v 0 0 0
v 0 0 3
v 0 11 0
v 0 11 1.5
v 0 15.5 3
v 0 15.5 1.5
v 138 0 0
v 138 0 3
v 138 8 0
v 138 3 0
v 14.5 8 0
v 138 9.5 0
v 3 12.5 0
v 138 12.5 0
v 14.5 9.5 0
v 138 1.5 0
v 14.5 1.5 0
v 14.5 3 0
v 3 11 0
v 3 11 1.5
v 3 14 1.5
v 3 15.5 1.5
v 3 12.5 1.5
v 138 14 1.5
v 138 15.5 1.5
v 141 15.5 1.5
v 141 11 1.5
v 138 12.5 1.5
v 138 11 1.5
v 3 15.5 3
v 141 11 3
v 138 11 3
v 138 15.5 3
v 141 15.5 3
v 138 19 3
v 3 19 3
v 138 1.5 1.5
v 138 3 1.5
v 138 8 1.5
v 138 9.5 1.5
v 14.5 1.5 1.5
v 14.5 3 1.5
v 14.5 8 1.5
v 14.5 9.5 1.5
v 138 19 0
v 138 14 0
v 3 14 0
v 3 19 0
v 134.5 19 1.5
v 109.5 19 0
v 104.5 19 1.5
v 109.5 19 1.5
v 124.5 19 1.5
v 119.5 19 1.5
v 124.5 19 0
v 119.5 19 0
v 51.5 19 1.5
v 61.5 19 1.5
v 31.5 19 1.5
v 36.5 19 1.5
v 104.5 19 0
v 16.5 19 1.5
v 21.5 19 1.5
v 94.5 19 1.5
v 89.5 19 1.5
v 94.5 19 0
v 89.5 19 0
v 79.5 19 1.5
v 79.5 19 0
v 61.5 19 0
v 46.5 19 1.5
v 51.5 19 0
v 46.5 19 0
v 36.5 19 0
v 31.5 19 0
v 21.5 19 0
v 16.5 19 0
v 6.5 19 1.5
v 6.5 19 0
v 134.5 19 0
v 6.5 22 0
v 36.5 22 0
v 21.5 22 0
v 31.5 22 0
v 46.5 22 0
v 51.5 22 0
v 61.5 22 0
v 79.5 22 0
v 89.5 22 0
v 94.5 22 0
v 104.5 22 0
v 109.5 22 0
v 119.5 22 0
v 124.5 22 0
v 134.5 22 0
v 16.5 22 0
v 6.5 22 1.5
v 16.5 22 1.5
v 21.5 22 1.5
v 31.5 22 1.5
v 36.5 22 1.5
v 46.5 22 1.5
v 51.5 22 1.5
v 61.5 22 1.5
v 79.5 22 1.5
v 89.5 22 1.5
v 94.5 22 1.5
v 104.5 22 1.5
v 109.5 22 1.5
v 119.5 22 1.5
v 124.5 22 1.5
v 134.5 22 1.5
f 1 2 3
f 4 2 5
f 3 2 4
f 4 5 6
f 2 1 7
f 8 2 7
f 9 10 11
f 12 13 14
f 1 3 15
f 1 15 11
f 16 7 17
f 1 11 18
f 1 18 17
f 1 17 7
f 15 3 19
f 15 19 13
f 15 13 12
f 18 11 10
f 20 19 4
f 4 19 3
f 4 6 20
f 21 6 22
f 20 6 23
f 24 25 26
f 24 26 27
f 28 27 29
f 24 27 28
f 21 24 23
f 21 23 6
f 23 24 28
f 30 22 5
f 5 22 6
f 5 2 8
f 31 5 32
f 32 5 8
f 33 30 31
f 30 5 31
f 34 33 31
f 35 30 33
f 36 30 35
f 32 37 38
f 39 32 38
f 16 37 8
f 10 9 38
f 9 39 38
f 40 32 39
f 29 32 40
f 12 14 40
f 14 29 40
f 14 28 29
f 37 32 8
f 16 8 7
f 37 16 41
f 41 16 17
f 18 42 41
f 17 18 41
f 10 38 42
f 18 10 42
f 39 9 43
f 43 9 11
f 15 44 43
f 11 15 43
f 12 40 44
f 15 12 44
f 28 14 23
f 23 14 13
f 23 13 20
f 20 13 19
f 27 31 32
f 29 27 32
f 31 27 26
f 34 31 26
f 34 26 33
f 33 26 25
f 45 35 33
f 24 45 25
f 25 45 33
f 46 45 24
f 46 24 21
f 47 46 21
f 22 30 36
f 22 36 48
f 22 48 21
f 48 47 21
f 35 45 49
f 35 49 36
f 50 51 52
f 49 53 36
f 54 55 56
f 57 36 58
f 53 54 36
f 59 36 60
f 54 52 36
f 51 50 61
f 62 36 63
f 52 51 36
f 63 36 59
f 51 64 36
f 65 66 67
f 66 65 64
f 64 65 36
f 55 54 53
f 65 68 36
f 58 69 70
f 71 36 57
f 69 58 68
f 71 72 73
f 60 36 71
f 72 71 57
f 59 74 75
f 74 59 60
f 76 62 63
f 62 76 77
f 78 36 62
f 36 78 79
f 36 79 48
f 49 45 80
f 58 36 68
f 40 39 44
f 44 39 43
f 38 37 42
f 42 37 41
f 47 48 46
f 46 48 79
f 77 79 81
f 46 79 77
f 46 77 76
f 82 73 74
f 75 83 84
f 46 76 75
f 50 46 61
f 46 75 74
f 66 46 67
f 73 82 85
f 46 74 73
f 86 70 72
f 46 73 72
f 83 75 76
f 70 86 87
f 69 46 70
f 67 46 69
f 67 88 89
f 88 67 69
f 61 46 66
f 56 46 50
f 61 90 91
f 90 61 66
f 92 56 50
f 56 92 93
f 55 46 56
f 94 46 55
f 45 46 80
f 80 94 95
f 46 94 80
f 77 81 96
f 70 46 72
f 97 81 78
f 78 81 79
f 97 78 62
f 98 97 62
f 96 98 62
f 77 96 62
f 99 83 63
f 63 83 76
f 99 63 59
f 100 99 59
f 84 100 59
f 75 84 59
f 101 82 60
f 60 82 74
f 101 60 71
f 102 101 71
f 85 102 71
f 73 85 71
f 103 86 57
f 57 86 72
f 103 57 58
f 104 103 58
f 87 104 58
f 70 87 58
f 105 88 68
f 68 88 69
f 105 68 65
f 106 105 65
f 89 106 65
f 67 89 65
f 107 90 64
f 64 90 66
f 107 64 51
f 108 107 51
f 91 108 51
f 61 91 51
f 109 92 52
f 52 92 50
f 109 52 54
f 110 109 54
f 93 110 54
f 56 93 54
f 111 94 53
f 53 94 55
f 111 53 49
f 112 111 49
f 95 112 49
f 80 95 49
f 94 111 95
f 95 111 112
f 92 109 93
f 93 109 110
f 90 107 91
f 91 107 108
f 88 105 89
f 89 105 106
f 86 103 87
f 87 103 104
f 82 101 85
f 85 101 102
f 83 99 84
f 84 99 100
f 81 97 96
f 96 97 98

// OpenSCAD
board = 138;
edge = 1.5;

depth = 2 * edge;
width = board + 2 * edge;

groove = 1.5;
faceSpace = 5;
mountSpace = 3;
pcbSpace = 5;

notchSpacing = 5;
notchWidth = 10;
notchHeight = 3;

height =
	edge +
	groove +
	faceSpace +
	groove +
	mountSpace +
	groove +
	pcbSpace +
	notchHeight;

faceTop = edge;
mountTop = faceTop + groove + faceSpace;
pcbTop = mountTop + groove + mountSpace;
baseTop = pcbTop + groove + pcbSpace;

notchCount = 8;
notchGap = board - notchCount * (notchSpacing + notchWidth);
notch1Left = edge + notchSpacing;
notch2Left = notch1Left + notchSpacing + notchWidth;
notch3Left = notch2Left + notchSpacing + notchWidth;
notch4Left = notch3Left + notchSpacing + notchWidth;
notch5Left = notch4Left + notchGap + notchWidth;
notch6Left = notch5Left + notchSpacing + notchWidth;
notch7Left = notch6Left + notchSpacing + notchWidth;
notch8Left = notch7Left + notchSpacing + notchWidth;

module hole(x, y, z, cx, cy, cz)
{
	translate([x, y, z]) cube([cx, cy, cz]);
}

module grooveHole(x, y)
{
	hole(edge + x, y, 0, board - x, groove, edge);
}

module notchHole(x, cx)
{
	hole(x, baseTop, 0, cx, notchHeight, edge);
}

module sideNotch(x)
{
	hole(x, 0, 0, 2 * edge, height, edge);
	hole(x, 0, edge, 2 * edge, pcbTop - edge, edge);
	hole(x, pcbTop + 2 * edge, edge, 2 * edge, 2 * edge + groove, edge);
}

difference()
{
	cube([width, height, depth]);

	grooveHole(13, faceTop);
	grooveHole(13, mountTop);
	grooveHole(0, pcbTop);

	hole(0, baseTop, edge, width, notchHeight, edge);
	notchHole(0, notch1Left);
	notchHole(notch1Left + notchWidth, notchSpacing);
	notchHole(notch2Left + notchWidth, notchSpacing);
	notchHole(notch3Left + notchWidth, notchSpacing);
	notchHole(notch4Left + notchWidth, notchGap);
	notchHole(notch5Left + notchWidth, notchSpacing);
	notchHole(notch6Left + notchWidth, notchSpacing);
	notchHole(notch7Left + notchWidth, notchSpacing);
	notchHole(notch8Left + notchWidth, notchSpacing + edge);

	//sideNotch(0);

	hole(0, pcbTop - edge, 0, 2 * edge, height, edge);
//	hole(0, 0, edge, 2 * edge, pcbTop - edge, edge);
	hole(0, pcbTop + 2 * edge, edge, 2 * edge, 2 * edge + groove, edge);

	sideNotch(board);
}
